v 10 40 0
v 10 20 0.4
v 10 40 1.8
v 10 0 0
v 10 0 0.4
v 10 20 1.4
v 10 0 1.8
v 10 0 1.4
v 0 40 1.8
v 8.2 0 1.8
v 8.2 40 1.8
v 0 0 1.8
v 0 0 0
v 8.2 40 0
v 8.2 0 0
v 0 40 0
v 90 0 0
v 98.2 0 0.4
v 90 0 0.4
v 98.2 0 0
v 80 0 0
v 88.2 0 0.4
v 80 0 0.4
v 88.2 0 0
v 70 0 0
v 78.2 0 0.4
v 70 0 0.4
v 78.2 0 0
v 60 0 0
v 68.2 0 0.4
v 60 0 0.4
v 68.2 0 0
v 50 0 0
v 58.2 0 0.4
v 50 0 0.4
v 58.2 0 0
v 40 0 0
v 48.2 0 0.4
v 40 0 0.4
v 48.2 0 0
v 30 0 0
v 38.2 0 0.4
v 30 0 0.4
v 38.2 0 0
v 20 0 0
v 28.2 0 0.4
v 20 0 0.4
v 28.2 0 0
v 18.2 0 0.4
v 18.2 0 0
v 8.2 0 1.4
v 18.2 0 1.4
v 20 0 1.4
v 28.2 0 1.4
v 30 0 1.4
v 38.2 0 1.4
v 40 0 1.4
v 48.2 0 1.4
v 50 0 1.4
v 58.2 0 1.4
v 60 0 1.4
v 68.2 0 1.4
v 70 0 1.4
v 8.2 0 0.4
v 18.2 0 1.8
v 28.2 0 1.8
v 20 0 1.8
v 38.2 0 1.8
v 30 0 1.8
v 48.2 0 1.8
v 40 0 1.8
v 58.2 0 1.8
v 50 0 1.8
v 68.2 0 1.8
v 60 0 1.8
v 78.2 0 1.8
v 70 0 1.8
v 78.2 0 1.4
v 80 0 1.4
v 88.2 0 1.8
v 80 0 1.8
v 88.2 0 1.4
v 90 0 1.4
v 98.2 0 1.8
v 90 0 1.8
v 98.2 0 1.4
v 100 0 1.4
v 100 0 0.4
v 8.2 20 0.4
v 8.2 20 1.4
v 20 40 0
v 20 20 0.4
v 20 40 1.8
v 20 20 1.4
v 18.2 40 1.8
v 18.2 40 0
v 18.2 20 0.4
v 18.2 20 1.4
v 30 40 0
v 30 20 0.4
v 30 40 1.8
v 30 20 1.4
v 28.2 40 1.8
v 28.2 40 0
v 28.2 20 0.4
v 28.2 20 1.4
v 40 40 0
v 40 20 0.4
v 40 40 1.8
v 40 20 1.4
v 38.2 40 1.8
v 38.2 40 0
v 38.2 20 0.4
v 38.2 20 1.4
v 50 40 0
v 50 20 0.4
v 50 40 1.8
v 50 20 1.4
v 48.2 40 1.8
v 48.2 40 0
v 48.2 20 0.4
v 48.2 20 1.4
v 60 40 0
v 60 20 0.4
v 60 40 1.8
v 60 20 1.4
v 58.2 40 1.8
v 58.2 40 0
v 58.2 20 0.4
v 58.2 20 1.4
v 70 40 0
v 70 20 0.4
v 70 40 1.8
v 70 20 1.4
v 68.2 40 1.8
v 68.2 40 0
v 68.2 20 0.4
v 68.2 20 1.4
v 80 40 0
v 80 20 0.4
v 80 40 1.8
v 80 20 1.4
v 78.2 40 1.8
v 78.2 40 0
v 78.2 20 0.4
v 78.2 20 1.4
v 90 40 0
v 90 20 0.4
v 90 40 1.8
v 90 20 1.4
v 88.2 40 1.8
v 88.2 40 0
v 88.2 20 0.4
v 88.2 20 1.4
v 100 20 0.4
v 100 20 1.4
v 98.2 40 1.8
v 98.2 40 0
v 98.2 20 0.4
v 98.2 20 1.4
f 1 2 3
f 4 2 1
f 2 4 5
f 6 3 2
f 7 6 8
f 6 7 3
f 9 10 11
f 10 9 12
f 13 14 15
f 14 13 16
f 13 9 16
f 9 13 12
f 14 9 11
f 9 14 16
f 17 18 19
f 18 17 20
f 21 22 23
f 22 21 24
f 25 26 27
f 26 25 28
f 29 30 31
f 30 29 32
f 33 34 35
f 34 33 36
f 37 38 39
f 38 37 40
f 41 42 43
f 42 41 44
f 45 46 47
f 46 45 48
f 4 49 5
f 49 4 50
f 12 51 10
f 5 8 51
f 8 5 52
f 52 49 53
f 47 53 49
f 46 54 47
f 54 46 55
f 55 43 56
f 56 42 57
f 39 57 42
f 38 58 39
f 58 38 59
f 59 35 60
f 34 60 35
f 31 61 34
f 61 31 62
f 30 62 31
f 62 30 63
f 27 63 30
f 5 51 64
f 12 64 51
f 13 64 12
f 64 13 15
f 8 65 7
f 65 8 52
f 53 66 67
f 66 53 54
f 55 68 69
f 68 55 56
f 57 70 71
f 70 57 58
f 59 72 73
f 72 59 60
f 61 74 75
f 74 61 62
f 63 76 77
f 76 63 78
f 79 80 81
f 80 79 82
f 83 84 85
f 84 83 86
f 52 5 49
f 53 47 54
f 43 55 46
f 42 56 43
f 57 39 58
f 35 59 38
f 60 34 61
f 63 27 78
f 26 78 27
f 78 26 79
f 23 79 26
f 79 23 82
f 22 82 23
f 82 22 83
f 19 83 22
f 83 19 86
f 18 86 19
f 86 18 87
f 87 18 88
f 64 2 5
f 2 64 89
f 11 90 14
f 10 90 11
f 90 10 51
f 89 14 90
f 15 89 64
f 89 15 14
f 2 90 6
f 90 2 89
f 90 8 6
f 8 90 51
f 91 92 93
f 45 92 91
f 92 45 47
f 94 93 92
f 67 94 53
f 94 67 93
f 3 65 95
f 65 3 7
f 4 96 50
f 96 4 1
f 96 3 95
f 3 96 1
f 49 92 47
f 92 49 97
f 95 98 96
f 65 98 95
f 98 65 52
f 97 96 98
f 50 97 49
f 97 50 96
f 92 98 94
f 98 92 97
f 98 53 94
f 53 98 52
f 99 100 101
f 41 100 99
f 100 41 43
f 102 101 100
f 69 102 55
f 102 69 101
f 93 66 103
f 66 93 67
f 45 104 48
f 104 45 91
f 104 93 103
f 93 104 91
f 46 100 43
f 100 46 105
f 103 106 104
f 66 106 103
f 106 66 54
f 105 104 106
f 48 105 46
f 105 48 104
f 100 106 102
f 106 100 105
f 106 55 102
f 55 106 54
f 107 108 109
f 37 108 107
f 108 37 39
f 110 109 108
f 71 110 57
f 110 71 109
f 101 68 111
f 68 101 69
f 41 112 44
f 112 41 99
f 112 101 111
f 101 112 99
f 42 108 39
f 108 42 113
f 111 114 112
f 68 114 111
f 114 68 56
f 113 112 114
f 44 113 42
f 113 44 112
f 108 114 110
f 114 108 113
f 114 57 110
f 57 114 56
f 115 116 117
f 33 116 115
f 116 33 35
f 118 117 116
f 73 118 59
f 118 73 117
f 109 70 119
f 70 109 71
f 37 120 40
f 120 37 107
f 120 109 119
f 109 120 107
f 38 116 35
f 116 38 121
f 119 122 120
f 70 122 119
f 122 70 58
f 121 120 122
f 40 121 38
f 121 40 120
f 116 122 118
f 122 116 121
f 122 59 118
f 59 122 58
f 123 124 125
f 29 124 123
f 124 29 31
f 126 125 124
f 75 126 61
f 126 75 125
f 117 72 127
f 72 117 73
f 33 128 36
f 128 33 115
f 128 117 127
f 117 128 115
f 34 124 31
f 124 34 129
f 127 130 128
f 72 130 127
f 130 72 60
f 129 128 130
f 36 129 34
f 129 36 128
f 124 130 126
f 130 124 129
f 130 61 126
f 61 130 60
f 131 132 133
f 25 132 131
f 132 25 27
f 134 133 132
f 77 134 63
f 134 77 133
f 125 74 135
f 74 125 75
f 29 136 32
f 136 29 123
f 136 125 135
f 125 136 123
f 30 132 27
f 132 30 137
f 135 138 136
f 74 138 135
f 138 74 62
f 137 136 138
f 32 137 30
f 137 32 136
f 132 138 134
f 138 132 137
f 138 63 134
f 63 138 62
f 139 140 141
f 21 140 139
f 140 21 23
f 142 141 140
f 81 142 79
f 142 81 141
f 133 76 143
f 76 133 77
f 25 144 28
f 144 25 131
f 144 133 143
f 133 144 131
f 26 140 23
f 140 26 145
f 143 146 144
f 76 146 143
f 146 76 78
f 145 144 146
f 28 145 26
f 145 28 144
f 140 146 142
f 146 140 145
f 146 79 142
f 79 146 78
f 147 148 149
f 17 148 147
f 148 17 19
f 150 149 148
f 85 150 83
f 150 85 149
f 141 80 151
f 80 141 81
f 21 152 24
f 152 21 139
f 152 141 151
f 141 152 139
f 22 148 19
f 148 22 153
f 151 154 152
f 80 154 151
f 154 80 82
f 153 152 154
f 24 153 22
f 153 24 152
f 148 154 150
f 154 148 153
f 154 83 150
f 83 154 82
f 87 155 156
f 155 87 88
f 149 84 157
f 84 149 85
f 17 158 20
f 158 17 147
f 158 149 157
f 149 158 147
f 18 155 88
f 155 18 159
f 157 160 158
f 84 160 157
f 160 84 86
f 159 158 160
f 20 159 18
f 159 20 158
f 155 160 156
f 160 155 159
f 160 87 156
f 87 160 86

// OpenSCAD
echo(version=version());

unitNum=10;
unitW=10;
unitH=40;
unitD=1.8;
diffD=(unitD-1)/2;
diffD2=unitD-diffD;

for(i = [0:unitNum - 1]) {
    translate([i * unitW, 0, 0]) {
        difference(){
            cube([unitW, unitH, unitD]);
            translate([unitW -unitD, 0, 0]) cube([unitD, unitH /2, diffD]);
            translate([unitW -unitD, 0, diffD2]) cube([unitD, unitH /2, diffD]);
            translate([unitW -unitD, unitH /2, 0]) cube([unitD, unitH /2, unitD]);
        }
    }
}
